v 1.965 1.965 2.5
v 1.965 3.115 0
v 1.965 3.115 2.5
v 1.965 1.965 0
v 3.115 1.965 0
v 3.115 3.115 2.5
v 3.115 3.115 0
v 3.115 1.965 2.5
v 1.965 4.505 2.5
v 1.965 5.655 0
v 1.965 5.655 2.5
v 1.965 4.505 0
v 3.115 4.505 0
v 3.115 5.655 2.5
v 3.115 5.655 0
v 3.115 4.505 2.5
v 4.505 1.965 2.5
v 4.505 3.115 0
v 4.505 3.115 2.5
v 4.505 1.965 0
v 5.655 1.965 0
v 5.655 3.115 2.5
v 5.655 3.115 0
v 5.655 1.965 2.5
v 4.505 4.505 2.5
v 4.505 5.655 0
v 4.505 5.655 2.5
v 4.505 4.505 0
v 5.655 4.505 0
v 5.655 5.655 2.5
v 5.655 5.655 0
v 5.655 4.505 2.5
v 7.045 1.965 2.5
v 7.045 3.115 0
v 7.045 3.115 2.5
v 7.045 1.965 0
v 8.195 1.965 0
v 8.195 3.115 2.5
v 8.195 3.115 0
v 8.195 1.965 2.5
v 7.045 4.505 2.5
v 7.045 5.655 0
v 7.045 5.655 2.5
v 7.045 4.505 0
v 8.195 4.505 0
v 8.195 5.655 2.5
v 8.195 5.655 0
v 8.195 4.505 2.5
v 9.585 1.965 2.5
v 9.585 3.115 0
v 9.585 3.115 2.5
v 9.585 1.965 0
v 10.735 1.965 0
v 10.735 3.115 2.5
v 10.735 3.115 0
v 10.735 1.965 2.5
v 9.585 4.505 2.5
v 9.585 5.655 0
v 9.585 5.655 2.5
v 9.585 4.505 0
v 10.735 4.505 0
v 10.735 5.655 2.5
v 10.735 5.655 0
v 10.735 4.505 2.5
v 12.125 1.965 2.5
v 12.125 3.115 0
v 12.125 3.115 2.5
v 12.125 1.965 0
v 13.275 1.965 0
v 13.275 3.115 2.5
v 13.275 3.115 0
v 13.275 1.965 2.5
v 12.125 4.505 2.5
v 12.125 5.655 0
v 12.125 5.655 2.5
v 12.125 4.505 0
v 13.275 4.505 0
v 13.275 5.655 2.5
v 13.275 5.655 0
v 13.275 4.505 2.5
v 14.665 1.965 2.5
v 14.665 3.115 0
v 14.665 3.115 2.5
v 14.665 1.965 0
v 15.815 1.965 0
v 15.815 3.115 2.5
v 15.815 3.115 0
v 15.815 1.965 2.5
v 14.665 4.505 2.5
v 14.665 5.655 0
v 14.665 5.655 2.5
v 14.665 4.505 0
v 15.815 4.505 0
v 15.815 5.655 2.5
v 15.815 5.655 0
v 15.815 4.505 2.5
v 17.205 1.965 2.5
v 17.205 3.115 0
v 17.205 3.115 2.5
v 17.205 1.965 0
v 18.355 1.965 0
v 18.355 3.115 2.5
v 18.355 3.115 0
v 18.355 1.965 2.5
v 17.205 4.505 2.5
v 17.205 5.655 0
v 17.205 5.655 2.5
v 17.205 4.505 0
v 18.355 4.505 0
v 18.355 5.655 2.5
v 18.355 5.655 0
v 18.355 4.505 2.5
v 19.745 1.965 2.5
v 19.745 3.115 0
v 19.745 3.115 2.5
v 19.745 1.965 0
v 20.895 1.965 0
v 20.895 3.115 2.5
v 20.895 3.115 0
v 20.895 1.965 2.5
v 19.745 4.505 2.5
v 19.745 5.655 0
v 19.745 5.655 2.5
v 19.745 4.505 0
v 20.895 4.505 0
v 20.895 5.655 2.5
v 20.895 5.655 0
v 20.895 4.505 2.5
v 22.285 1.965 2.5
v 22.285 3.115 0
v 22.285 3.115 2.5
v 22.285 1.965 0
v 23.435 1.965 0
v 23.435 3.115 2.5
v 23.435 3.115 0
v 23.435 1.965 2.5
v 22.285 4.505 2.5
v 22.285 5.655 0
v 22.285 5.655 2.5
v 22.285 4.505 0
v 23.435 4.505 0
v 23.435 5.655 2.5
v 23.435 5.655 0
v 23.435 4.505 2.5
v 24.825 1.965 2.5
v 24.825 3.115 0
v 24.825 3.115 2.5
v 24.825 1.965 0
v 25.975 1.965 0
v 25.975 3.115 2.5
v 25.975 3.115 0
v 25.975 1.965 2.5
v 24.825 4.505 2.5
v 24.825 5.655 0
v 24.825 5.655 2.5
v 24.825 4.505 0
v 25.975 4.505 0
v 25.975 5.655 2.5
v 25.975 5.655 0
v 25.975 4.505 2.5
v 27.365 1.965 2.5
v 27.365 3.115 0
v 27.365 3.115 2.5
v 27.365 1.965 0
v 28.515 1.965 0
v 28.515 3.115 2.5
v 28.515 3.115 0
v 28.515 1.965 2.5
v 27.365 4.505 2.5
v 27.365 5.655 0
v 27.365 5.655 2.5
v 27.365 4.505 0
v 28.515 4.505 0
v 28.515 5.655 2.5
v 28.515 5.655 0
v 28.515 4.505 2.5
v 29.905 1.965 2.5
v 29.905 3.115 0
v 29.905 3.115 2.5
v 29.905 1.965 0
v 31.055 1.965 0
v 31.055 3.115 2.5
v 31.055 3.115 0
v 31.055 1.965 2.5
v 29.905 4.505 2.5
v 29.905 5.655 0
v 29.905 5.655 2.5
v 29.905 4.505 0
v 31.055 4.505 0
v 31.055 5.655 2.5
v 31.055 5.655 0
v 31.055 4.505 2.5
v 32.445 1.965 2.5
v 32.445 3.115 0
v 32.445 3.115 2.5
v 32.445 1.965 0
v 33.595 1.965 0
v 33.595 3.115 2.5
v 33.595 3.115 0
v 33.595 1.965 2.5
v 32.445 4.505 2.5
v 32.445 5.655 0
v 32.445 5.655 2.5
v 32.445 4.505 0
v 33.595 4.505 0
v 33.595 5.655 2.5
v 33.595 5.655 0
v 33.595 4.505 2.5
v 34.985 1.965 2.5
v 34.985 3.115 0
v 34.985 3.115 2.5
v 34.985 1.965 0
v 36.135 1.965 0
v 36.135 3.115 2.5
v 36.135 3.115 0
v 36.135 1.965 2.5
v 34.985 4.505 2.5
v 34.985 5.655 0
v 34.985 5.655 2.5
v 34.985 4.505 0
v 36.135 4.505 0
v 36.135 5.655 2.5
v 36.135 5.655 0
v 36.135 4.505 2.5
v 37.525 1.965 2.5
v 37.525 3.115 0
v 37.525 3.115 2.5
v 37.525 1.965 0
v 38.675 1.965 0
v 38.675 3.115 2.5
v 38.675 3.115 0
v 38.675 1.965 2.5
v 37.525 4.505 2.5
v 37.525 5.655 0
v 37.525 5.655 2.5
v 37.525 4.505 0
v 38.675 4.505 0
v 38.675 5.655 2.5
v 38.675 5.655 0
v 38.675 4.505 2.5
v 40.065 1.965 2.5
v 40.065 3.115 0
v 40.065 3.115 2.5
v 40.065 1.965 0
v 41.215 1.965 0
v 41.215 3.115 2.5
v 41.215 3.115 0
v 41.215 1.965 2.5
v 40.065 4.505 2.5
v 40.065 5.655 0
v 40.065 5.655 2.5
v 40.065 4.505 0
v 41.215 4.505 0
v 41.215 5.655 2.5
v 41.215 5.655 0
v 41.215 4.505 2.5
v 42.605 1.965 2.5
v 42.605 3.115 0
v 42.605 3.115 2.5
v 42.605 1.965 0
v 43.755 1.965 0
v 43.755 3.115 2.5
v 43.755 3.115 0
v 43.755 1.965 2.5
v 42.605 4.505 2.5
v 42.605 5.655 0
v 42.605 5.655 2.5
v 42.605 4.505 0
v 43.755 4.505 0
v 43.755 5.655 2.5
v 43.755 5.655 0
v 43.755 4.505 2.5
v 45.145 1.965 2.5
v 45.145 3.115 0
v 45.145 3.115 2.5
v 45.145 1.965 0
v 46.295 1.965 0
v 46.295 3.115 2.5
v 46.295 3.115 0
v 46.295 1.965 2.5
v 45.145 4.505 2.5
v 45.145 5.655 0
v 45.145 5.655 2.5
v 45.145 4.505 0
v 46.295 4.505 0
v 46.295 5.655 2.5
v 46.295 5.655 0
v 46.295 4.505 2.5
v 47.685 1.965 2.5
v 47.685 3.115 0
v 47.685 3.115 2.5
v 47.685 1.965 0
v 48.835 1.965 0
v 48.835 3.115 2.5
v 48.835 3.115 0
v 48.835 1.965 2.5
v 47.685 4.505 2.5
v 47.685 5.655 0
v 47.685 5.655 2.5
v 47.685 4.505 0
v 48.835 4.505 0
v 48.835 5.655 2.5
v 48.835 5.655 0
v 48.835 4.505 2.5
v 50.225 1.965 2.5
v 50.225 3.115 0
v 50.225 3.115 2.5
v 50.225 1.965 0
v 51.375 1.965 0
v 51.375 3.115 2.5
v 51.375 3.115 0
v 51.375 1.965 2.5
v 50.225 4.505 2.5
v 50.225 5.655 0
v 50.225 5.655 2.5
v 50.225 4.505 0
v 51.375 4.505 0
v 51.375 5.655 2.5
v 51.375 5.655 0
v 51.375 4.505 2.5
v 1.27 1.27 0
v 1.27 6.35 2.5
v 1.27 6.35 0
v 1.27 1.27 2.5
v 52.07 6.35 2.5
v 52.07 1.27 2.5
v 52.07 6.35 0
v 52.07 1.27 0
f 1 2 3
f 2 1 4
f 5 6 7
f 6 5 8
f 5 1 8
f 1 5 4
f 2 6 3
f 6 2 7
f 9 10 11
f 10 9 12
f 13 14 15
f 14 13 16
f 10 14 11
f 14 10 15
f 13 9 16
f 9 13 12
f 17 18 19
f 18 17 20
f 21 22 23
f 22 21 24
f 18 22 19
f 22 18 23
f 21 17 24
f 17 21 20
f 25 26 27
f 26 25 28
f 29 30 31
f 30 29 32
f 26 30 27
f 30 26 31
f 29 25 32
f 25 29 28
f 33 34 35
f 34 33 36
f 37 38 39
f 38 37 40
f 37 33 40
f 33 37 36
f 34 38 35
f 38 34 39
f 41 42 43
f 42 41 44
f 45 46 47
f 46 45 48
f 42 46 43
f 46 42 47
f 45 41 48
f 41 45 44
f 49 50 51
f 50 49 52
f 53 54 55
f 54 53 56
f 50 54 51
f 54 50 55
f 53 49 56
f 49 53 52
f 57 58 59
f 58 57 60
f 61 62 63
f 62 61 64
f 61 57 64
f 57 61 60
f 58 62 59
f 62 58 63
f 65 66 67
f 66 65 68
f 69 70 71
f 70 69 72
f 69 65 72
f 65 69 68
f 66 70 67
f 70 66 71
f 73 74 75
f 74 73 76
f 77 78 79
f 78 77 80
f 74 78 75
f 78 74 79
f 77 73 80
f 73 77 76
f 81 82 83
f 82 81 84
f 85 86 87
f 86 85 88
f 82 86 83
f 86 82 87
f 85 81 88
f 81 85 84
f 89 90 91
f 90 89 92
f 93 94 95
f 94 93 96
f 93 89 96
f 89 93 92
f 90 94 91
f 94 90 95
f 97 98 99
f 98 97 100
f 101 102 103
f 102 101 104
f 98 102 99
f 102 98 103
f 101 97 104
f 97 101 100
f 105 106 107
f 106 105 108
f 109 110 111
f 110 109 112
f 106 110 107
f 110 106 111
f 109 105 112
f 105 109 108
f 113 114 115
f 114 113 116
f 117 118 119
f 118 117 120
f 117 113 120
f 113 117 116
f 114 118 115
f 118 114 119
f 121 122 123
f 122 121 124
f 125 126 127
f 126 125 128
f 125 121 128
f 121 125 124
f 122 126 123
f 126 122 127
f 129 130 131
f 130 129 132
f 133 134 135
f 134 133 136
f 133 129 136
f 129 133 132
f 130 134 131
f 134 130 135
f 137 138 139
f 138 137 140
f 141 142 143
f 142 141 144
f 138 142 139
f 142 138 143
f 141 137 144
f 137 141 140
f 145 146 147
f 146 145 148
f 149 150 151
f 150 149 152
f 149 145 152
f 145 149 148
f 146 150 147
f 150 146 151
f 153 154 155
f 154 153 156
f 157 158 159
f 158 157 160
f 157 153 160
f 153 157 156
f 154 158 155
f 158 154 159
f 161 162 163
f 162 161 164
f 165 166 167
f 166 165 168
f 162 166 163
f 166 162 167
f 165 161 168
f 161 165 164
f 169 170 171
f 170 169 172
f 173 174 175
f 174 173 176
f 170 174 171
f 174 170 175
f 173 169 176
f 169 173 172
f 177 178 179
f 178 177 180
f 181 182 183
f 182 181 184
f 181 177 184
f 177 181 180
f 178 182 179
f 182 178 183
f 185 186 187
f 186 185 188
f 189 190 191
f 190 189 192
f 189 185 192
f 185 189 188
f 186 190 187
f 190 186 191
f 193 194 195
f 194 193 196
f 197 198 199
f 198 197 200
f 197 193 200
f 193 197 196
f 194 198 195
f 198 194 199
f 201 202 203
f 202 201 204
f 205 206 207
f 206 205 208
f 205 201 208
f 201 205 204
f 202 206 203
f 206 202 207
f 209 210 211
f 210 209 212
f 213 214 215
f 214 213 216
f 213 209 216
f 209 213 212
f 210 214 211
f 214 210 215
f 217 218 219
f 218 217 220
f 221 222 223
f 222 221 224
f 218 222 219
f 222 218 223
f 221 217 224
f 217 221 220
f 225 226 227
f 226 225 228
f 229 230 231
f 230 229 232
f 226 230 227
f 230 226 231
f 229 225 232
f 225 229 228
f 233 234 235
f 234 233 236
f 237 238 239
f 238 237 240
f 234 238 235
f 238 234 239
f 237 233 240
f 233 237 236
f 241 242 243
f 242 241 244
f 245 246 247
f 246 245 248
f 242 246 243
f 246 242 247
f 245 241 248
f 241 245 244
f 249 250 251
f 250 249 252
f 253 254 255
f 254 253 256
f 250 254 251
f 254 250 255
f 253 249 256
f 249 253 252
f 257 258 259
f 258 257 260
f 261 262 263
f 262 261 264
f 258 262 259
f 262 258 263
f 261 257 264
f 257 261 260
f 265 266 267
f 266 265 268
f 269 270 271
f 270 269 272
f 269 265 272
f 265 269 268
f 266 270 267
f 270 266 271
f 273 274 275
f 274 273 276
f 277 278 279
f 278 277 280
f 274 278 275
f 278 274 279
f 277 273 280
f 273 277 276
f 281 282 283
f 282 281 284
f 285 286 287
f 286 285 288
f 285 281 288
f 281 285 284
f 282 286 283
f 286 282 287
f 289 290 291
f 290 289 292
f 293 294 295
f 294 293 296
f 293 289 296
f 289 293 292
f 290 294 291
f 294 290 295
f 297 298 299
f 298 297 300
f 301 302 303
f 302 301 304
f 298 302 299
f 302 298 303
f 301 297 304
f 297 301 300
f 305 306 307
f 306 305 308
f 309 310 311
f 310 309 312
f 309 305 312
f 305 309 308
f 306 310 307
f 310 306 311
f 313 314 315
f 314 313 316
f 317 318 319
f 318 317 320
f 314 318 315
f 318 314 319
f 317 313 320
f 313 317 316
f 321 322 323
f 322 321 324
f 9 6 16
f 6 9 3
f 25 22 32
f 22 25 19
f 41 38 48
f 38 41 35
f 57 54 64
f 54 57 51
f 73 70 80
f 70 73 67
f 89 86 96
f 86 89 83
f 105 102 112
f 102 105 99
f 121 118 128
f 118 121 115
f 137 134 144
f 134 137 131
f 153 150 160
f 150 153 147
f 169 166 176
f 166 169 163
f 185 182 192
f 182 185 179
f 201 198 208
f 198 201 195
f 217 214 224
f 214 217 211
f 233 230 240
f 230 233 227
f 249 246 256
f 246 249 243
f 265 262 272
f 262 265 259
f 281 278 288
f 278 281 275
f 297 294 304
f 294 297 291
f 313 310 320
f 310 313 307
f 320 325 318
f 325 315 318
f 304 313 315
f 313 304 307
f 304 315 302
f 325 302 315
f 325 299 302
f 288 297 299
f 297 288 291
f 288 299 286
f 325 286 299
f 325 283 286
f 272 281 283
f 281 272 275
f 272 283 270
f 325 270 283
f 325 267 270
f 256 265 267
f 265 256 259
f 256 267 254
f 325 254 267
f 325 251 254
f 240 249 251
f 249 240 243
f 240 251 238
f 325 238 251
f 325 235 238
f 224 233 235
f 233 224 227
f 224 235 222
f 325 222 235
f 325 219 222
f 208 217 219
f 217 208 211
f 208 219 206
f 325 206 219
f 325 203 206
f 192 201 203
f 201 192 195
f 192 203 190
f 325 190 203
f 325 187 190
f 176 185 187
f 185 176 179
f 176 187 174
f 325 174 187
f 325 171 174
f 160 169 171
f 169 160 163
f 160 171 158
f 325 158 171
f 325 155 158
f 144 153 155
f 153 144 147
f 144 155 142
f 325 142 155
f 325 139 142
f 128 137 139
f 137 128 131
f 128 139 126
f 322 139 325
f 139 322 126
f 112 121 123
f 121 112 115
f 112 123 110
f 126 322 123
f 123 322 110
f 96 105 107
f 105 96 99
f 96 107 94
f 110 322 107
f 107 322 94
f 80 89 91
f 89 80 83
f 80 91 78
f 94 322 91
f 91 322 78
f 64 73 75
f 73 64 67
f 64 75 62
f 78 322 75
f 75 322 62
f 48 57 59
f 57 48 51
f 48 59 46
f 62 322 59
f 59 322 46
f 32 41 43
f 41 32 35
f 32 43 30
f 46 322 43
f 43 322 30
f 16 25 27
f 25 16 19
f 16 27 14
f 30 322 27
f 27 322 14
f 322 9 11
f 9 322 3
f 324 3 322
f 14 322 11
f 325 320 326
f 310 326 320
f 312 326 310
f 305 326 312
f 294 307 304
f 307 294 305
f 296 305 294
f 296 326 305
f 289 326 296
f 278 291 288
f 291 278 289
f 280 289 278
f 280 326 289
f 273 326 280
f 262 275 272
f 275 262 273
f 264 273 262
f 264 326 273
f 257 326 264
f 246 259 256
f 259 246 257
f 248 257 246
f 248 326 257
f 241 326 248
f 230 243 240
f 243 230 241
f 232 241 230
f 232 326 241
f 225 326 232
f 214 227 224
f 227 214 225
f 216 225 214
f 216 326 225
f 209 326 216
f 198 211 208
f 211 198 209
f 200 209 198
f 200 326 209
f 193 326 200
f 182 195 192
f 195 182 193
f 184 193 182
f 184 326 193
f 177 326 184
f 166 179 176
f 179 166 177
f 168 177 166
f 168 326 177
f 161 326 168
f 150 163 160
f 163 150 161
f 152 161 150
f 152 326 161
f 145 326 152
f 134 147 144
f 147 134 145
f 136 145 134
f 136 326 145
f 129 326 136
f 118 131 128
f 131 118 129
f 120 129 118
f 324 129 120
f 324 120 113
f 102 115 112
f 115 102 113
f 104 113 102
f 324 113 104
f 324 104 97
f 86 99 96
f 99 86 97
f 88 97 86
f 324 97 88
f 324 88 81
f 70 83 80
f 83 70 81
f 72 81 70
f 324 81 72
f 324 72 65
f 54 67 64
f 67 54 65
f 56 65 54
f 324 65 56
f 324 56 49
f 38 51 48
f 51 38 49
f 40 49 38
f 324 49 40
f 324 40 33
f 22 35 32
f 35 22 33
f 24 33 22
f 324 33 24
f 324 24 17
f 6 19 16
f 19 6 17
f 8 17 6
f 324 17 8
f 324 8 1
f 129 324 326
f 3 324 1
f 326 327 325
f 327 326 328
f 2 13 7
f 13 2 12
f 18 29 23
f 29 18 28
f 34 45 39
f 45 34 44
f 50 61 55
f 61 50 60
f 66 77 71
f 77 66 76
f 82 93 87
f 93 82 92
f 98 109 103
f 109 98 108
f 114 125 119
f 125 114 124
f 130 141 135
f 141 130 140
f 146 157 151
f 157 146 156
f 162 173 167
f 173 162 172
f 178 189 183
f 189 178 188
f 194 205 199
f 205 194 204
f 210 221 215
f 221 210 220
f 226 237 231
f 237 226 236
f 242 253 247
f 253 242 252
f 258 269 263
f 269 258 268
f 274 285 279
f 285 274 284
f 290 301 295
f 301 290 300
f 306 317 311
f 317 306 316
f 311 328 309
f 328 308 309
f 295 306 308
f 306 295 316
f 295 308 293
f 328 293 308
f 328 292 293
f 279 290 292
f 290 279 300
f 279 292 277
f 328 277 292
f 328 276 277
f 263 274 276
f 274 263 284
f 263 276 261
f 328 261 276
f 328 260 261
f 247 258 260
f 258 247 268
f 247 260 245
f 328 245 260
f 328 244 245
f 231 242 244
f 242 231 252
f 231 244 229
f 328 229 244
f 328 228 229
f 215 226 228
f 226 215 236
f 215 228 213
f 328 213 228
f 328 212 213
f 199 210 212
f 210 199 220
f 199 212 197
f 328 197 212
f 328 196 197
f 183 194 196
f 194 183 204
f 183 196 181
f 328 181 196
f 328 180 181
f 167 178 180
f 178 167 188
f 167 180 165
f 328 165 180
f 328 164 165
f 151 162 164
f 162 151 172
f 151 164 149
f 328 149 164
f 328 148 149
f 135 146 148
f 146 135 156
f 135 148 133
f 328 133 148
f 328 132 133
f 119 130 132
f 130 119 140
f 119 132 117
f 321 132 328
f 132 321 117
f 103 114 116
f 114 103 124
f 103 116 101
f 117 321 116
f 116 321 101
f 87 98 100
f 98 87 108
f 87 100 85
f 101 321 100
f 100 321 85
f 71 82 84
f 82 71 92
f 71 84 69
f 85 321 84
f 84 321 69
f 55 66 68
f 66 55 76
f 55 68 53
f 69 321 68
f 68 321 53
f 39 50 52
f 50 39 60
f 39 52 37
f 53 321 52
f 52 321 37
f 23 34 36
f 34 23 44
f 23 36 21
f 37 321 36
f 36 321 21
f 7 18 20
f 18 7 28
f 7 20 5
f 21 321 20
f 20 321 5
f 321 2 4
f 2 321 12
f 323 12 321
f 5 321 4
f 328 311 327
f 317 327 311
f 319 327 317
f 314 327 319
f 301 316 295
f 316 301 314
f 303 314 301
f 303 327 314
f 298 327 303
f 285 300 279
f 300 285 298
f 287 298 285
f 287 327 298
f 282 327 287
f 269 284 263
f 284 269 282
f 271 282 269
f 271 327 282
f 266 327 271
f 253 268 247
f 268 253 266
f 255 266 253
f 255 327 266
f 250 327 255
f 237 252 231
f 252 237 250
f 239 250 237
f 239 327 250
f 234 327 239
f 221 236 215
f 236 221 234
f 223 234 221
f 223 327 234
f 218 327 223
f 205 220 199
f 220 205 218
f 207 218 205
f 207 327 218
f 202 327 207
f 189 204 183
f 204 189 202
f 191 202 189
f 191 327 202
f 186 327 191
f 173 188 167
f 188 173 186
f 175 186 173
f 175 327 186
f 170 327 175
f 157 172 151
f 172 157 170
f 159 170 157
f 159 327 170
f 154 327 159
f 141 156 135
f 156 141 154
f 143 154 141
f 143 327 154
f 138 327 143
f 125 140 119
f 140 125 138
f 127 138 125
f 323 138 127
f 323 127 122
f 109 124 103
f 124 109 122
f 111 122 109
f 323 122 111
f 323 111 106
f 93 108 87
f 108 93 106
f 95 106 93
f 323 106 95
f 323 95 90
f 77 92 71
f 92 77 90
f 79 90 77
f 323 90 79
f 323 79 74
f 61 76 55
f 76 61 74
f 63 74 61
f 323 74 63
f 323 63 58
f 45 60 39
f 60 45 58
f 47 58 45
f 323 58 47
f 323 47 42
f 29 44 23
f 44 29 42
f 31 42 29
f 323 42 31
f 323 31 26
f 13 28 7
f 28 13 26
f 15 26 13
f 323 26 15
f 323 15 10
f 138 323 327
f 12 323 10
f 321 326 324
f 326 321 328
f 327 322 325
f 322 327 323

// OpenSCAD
$fn = 100;

/* Spacer Settings */
x_count = 20;
y_count = 2;
spacer_height = 2.5;
tolerance = 0.5;

/* Currently Assuming Imperial Header Size */
header_width = 0.65;
header_length = 6;
header_spacing = 2.54;

module header_spacer(x_count, y_count, spacer_height, header_width, header_length, header_spacing, tolerance)
{
    module female_header_req(hw, hl, sh, tol)
    {
        union()
        {
            #translate([-(hw+tol)/2,-(hw+tol)/2,-1])
                cube([hw+tol,hw+tol,sh+2]);
            
            /* Male Header Visualisation */
            %union()
            {
                translate([-(hw)/2,-(hw)/2,-3-2.5]) color("grey")
                    cube([hw,hw,hl+3+2.5]);
                translate([0,0,-(header_spacing)/2])
                    cube([header_spacing,header_spacing,(2.5)],  center=true);
            }
        }
    }
    
    difference()
    {
        /* Spacer */
        translate([header_spacing/2, header_spacing/2, 0]) 
            cube([header_spacing*x_count,header_spacing*y_count,spacer_height]);
        
        /* Cutout */
        for ( xi = [1 : 1 : x_count] )
        for ( yi = [1 : 1 : y_count] )
        translate([header_spacing*xi, header_spacing*yi, 0]) 
        female_header_req(header_width, header_length, spacer_height, tolerance);

    }
}

header_spacer(x_count, y_count, spacer_height, header_width, header_length, header_spacing, tolerance);
